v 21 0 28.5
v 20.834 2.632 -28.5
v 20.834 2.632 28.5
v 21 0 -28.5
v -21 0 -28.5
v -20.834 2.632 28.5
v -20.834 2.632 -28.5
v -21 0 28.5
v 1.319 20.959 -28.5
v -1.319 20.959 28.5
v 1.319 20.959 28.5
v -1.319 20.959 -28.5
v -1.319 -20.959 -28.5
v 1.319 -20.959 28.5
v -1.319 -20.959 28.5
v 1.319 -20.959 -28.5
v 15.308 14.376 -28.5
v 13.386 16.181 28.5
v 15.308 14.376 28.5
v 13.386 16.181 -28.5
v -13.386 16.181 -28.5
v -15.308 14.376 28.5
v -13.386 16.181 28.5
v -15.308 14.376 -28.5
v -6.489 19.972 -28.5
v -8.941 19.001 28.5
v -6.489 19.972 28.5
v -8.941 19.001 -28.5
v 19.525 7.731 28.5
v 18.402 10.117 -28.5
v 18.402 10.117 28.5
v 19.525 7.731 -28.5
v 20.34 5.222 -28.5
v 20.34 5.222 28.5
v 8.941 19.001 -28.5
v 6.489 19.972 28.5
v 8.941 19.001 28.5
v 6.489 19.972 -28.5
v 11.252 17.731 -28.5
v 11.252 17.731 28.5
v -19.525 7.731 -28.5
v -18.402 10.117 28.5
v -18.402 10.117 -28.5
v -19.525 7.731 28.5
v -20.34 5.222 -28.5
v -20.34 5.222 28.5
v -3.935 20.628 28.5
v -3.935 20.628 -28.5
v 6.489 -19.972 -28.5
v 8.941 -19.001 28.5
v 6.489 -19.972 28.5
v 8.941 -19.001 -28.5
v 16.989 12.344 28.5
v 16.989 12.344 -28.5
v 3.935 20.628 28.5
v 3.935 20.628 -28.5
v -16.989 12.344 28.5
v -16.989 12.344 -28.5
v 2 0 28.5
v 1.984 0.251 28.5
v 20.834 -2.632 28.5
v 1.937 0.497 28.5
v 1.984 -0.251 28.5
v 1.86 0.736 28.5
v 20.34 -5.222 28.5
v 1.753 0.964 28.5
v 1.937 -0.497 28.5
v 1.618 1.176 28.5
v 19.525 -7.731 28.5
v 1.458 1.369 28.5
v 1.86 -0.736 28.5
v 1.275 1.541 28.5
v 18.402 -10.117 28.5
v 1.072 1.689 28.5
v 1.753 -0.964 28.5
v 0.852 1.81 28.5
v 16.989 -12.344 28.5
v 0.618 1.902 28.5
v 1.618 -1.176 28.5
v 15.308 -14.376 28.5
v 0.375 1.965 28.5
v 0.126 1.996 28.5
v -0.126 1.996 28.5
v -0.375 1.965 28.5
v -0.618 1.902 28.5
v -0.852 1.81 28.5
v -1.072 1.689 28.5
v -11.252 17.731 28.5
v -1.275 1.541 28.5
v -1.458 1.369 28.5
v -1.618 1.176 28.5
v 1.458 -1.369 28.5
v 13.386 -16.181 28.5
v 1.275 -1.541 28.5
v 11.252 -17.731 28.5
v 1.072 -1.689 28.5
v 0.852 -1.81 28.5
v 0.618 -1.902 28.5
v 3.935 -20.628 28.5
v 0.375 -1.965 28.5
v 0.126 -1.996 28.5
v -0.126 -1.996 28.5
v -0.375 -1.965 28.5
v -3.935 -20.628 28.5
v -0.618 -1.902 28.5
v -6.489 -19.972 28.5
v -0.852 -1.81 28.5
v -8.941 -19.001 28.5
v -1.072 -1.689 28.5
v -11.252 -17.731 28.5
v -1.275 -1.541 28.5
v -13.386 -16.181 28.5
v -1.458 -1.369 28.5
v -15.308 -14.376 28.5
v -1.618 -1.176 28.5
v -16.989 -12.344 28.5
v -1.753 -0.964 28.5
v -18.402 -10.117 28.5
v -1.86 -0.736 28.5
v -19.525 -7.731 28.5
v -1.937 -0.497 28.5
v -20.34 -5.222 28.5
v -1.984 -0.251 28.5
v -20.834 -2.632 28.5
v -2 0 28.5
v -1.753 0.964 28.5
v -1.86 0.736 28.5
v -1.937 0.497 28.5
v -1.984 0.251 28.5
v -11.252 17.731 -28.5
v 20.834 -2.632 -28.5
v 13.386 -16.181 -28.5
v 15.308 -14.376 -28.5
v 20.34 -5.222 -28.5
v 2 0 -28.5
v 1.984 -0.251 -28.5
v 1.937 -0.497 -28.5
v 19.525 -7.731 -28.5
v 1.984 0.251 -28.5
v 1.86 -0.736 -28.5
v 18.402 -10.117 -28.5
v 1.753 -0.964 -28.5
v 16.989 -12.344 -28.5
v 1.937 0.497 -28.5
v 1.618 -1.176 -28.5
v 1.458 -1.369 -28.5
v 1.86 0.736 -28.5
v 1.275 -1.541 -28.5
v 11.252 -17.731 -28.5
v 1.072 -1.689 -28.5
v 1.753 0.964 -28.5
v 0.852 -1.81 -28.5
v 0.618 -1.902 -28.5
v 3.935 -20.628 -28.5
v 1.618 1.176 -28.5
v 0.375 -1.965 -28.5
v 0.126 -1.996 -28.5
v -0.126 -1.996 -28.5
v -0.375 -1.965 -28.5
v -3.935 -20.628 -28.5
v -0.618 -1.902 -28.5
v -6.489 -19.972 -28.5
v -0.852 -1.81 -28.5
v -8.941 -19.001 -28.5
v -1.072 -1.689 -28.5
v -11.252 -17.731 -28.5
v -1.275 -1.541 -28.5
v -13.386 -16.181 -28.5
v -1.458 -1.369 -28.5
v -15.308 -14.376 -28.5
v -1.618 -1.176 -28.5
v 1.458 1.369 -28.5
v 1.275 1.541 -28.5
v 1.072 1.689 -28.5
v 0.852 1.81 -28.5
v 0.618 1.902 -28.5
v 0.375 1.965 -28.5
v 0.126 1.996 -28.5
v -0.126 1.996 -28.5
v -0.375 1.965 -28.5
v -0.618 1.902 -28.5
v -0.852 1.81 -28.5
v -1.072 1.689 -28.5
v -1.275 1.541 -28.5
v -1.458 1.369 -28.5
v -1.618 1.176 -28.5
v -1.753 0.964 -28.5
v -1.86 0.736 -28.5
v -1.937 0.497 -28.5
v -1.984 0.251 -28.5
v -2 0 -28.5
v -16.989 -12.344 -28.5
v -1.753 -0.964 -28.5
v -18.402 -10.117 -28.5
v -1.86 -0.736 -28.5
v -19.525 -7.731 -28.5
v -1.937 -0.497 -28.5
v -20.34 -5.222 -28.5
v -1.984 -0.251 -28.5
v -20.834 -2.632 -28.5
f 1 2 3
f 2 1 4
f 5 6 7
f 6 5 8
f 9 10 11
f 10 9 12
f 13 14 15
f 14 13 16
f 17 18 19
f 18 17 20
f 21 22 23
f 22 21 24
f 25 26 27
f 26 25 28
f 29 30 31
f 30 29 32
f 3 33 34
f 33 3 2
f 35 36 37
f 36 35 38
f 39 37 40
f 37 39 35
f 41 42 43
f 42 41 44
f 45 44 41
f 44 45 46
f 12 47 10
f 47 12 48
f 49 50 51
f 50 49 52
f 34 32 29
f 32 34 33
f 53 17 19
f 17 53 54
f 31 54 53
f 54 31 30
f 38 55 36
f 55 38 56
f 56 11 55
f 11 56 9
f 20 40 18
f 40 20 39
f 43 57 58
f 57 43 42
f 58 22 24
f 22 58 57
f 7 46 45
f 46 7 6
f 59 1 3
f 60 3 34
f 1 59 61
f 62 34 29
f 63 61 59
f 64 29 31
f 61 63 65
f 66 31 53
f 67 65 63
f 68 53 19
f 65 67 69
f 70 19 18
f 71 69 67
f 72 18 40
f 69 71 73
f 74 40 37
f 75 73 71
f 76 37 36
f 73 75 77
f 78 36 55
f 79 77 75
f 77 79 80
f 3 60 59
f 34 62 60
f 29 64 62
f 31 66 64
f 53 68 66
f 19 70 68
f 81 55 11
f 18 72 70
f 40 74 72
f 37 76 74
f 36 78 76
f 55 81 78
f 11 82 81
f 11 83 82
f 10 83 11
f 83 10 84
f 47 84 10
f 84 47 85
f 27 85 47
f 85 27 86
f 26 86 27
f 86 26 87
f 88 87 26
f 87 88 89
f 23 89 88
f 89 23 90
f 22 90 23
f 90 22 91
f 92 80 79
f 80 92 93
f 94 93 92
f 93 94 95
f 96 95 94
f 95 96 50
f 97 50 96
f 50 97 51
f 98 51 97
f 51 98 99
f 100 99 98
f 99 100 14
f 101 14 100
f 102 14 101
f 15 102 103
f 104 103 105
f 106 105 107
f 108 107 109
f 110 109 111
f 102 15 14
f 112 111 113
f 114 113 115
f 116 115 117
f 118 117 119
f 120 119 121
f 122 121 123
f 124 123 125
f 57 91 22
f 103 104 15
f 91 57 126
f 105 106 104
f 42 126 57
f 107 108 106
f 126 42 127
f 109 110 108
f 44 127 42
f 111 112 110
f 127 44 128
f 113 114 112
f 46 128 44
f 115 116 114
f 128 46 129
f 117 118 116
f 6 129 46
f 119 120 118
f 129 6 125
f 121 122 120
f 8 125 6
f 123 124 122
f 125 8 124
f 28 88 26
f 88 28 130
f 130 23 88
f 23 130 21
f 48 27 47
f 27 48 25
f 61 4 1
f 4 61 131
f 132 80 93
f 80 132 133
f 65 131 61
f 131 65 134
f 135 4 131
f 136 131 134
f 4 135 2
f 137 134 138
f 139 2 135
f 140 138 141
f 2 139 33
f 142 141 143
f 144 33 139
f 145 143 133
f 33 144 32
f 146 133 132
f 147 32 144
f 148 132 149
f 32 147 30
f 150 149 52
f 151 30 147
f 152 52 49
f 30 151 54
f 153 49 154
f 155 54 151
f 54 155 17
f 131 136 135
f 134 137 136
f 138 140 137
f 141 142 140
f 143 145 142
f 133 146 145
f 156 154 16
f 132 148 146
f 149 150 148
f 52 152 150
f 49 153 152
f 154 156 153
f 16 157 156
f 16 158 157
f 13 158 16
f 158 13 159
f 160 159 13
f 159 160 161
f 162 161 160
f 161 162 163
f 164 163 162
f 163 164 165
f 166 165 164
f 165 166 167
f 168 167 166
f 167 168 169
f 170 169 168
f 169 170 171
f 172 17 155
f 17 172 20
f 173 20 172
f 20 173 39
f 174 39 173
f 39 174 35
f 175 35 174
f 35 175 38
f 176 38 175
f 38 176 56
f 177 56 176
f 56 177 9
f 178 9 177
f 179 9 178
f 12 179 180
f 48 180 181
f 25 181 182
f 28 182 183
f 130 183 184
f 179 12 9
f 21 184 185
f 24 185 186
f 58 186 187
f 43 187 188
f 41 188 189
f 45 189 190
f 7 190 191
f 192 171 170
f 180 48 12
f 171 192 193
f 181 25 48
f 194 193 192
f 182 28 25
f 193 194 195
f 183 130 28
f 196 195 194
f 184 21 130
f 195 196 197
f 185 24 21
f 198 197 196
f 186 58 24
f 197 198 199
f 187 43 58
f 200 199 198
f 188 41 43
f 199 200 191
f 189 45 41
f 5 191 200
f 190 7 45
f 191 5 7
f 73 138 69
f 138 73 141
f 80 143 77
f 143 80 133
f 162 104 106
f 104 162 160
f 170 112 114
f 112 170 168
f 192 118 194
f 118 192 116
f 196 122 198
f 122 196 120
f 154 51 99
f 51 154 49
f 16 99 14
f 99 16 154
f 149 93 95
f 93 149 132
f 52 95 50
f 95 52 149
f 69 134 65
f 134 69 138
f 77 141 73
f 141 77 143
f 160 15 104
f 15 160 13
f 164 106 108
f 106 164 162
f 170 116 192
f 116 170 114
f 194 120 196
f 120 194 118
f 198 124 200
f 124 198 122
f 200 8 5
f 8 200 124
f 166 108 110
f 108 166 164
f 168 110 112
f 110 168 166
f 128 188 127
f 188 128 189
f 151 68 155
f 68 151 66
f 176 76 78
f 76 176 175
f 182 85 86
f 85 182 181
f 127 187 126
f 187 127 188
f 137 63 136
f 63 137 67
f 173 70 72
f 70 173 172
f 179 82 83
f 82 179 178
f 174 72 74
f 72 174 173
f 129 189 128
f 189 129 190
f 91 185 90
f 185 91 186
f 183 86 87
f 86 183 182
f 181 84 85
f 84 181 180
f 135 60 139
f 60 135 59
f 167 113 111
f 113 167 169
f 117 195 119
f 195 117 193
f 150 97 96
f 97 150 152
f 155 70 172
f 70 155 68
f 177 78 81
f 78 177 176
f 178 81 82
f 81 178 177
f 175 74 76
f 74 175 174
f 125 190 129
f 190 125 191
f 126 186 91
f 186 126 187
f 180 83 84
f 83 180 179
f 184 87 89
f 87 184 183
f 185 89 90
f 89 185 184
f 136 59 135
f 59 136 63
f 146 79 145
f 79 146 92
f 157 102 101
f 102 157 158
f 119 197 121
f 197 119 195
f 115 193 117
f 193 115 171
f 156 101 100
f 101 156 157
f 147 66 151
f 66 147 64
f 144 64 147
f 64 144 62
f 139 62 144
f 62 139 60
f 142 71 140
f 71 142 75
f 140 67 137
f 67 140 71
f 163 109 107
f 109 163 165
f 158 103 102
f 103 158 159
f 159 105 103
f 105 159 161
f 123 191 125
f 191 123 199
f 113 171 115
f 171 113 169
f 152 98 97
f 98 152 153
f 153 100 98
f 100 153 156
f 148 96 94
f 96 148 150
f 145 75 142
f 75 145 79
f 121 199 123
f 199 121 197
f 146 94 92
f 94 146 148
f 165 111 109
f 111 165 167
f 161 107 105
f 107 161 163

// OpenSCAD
$fn = 50;


difference() {
	union() {
		translate(v = [0, 0, -28.5000000000]) {
			cylinder(h = 57, r = 21.0000000000);
		}
	}
	union() {
		translate(v = [0, 0, -100.0000000000]) {
			cylinder(h = 200, r = 2);
		}
	}
}
